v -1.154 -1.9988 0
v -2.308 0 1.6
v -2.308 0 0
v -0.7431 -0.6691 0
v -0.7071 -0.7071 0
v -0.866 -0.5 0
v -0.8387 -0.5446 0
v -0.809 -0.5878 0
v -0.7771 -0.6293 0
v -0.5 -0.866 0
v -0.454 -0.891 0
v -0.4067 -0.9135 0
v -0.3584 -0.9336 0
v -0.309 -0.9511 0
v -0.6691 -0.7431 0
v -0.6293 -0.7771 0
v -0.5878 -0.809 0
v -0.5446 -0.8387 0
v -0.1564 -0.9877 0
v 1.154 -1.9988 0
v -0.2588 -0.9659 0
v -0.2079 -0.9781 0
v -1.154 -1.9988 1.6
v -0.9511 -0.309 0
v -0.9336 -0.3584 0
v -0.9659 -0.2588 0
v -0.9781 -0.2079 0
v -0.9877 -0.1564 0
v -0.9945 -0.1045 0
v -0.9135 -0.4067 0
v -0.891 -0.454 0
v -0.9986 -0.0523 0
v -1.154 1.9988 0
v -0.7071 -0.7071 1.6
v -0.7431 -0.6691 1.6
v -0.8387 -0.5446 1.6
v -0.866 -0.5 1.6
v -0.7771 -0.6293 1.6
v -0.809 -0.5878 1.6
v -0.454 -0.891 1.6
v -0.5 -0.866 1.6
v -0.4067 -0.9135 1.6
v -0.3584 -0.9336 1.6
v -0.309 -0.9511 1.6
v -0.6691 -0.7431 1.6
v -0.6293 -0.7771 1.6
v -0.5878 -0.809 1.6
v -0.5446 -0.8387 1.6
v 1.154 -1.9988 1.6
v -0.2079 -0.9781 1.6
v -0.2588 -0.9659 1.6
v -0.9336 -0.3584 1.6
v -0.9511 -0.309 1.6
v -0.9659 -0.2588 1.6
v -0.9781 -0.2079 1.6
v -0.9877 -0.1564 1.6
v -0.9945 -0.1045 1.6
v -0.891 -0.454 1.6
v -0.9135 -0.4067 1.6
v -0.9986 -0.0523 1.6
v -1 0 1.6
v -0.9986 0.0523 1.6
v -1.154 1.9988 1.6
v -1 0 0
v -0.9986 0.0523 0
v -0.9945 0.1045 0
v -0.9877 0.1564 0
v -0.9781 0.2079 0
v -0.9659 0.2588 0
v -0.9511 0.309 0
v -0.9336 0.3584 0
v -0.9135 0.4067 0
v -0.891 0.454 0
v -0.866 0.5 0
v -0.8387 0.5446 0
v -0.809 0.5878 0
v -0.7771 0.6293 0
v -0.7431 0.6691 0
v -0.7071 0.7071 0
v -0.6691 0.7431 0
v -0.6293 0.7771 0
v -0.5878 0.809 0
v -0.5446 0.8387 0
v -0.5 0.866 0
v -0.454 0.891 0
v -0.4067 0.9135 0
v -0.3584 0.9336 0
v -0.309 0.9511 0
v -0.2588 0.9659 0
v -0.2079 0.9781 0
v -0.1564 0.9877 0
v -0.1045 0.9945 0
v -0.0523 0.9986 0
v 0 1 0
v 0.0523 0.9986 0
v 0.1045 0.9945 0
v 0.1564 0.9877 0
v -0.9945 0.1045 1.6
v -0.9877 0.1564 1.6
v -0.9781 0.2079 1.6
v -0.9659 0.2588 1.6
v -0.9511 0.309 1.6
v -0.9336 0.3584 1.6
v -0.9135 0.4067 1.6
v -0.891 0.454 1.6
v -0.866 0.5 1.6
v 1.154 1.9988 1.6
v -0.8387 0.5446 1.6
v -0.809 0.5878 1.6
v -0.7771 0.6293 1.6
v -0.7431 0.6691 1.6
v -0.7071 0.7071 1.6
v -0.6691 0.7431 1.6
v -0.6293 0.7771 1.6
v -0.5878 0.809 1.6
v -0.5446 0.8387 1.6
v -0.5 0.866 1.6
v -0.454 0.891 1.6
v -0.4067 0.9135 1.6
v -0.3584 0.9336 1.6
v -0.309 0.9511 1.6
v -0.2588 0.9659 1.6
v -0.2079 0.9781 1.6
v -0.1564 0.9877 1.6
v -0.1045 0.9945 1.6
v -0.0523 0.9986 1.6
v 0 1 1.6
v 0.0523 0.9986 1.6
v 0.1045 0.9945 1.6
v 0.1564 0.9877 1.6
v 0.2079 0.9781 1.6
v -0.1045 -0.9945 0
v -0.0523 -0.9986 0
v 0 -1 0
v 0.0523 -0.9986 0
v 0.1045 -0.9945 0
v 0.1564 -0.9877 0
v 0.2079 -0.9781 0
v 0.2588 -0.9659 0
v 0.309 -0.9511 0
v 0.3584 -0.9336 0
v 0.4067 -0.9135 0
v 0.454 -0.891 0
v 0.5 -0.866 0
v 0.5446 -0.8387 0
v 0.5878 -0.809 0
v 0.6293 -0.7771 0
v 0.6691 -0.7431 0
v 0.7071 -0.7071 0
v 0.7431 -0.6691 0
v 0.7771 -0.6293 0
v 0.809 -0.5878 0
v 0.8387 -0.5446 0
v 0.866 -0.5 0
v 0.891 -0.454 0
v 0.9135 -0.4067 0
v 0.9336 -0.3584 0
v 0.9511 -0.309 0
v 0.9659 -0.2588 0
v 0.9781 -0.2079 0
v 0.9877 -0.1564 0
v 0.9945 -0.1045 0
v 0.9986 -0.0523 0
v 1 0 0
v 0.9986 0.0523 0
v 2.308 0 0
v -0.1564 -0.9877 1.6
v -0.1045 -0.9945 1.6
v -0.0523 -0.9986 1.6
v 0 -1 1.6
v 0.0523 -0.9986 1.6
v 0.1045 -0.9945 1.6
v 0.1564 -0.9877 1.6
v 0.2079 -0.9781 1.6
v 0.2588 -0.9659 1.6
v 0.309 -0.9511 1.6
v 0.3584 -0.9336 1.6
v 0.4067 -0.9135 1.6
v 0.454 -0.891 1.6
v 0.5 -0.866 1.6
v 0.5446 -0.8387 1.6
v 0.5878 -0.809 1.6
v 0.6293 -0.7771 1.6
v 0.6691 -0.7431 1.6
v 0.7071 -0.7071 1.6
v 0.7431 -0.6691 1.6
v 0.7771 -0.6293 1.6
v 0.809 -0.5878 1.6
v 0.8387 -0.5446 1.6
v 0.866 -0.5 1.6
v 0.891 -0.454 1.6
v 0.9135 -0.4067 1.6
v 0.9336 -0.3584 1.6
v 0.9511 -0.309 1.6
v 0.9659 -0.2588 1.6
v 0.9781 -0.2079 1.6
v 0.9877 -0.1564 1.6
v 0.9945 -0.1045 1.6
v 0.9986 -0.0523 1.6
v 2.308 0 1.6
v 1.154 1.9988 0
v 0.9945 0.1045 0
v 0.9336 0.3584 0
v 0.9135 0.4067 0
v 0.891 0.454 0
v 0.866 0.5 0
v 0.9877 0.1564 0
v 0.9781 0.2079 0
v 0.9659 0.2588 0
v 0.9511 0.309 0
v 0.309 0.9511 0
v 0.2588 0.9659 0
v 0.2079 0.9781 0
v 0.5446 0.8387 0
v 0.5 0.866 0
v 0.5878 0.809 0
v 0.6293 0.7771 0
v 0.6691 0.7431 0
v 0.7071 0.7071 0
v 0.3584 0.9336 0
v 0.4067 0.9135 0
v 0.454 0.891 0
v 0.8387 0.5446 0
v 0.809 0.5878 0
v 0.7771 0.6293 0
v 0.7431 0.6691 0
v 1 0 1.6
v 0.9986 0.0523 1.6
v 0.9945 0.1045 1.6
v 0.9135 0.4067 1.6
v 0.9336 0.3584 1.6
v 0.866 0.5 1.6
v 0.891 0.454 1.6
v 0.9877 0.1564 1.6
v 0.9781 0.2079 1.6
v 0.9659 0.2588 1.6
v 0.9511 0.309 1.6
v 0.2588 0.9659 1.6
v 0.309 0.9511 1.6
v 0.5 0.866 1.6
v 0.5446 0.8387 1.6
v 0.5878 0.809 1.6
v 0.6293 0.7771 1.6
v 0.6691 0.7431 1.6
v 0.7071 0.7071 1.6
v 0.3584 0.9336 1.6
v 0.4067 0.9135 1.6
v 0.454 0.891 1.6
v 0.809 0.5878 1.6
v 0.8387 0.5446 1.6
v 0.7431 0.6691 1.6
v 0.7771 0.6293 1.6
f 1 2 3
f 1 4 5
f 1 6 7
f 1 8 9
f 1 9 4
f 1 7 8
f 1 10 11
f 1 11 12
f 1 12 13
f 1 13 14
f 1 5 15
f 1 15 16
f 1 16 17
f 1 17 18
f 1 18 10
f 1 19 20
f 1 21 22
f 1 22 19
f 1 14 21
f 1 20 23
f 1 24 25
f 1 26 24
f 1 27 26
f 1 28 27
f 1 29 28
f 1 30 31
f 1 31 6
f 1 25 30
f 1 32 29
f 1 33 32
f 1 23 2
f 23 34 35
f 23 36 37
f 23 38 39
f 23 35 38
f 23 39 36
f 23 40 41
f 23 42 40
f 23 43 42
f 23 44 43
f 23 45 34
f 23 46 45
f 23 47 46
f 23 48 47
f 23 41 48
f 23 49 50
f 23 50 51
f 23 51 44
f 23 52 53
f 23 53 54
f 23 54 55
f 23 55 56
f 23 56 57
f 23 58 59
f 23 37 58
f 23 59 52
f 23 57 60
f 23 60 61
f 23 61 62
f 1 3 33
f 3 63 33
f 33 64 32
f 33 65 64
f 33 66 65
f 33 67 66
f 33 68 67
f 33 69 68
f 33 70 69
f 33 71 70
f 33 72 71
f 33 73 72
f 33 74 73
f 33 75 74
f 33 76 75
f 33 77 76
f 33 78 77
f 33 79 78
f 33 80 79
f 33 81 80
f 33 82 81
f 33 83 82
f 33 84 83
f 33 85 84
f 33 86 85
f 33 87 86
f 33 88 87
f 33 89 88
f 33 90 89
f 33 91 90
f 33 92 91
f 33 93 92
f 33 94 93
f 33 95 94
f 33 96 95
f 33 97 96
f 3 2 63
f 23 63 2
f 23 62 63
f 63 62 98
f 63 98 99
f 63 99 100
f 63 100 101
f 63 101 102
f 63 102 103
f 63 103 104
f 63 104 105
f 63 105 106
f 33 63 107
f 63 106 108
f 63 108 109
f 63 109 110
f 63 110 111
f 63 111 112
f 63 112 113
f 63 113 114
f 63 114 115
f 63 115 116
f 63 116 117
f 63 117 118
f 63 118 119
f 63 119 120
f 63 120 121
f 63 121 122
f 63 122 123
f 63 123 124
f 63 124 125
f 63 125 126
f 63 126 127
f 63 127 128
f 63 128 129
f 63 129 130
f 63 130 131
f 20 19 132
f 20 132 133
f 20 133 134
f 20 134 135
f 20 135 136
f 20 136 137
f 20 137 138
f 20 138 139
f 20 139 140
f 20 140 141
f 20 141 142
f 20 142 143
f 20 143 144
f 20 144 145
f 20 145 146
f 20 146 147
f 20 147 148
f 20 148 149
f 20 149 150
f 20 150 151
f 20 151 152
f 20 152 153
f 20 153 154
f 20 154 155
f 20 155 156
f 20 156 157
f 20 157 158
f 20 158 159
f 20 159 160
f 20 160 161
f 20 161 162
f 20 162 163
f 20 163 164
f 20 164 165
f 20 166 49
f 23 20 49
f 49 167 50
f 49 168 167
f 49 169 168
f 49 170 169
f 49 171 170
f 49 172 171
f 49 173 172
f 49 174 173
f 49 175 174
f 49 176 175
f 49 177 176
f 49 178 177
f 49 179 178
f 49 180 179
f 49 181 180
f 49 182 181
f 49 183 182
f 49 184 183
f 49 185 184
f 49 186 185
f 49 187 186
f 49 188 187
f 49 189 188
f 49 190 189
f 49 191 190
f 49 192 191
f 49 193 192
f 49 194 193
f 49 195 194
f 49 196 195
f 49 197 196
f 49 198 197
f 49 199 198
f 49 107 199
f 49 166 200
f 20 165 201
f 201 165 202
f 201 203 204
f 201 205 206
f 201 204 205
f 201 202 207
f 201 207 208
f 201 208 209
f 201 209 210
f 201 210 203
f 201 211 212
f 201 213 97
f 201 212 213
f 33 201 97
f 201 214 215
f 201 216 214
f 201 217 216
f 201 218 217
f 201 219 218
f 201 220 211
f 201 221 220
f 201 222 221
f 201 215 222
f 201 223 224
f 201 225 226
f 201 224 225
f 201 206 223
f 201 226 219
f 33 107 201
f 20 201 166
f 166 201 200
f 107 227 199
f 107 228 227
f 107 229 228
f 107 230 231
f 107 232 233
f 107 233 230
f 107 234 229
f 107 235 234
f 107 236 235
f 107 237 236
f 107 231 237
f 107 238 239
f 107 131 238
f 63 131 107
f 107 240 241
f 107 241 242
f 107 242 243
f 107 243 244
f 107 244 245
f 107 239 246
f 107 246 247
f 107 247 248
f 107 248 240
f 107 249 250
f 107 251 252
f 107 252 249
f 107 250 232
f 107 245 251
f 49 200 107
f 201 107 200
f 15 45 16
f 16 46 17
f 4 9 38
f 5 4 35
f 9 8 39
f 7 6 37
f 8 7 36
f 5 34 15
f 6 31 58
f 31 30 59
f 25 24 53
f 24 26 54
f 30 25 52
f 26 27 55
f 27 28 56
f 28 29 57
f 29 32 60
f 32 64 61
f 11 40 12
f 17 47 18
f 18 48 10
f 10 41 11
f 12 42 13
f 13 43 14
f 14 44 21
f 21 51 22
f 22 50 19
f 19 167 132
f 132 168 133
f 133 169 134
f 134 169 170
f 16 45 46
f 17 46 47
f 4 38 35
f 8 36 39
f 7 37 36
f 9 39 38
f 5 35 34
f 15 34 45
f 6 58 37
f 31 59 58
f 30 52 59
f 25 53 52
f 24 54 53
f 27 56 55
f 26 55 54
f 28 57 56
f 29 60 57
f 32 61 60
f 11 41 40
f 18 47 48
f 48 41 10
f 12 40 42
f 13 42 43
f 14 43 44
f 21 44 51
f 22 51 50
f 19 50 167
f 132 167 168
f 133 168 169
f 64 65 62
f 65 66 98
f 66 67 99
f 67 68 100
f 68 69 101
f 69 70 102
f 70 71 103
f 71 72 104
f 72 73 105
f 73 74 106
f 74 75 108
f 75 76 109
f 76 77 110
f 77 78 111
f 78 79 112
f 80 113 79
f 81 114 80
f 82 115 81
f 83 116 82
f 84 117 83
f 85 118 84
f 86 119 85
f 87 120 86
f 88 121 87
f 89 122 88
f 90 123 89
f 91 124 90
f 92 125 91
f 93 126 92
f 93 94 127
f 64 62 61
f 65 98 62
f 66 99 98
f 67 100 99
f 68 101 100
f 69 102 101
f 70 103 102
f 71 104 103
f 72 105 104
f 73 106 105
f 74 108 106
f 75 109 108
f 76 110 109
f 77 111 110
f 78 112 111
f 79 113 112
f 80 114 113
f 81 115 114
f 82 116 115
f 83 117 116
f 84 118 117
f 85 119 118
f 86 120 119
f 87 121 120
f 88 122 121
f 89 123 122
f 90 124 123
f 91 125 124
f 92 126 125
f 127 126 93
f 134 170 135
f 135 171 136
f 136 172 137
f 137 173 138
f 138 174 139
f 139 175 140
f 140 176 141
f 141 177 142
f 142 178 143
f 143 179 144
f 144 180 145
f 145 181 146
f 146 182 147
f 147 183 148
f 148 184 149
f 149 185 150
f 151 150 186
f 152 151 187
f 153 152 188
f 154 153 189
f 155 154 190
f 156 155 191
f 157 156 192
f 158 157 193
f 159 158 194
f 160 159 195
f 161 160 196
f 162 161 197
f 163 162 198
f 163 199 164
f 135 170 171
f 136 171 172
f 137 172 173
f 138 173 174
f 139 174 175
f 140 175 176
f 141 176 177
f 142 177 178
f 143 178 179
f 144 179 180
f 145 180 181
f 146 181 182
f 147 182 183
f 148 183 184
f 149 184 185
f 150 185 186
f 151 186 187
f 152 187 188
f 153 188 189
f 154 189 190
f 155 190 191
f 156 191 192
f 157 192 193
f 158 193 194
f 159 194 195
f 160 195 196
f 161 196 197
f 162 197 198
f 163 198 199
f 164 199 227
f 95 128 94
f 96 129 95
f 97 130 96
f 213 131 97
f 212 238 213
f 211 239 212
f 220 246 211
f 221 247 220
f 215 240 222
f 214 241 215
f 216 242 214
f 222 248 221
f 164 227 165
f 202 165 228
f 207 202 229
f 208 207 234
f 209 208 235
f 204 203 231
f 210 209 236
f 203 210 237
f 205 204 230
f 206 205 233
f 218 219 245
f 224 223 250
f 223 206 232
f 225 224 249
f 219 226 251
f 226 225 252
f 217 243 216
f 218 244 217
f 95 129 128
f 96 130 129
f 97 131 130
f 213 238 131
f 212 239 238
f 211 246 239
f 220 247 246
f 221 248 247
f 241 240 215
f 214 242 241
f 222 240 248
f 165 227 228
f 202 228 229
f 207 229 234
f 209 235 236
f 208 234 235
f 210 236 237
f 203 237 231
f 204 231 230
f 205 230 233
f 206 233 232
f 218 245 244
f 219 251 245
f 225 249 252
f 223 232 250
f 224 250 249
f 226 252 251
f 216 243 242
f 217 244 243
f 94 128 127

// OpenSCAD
// file: C:/gh/oomlout_oobb_part_motor_gearbox_wave_drive_version_5/parts/oobb_part_motor_gearbox_wave_drive_version_5_12_to_1_reduction/compact_helpers.scad
// Reusable native geometry helpers.
function polar(r,a)=[r*cos(a),r*sin(a)];
function rotate_point(p,a)=[p[0]*cos(a)-p[1]*sin(a),p[0]*sin(a)+p[1]*cos(a)];
function profile_point(t)=let(
    s=sqrt(pow(pitch_radius,2)-pow(eccentricity*sin(cavity_count*t),2)),
    r=eccentricity*cos(cavity_count*t)+s,
    xi=atan2(eccentricity*cavity_count*sin(cavity_count*t),s),
    rr=roller_radius+profile_clearance)
    [r*cos(t)+rr*cos(t+xi),r*sin(t)+rr*sin(t+xi)];
function profile_points(upper=false)=[for(i=[0:cavity_count*profile_samples_per_cavity-1])
    rotate_point(profile_point(360*i/(cavity_count*profile_samples_per_cavity)),0)];
function roller_position(i,a,upper=false)=let(
    t=-a/roller_count+360*i/roller_count,
    rel=t-a-(upper?180:0),
    r=eccentricity*cos(rel)+sqrt(pow(pitch_radius,2)-pow(eccentricity*sin(rel),2))) polar(r,t);
module tube(ro,ri,h) { difference() { cylinder(r=ro,h=h); translate([0,0,-eps]) cylinder(r=ri,h=h+2*eps); } }
module screw_hole(size,h) { scale([1,1,h]) { if(size=="m2") oobb_hole_m2(); if(size=="m3") oobb_hole_m3(); if(size=="m6") oobb_hole_m6(); } }
module socket_recess(size,depth) {
    // OOBB socket head starts at the under-head plane and extends outward.
    scale([1,1,depth/(size=="m3"?3.2:2.2)]) {
        if(size=="m3") oobb_socket_m3(); else oobb_socket_m2();
    }
}
module at_mounts(points) { for(p=points) translate([p[0],p[1],0]) children(); }
module shaft_cut(h,fit=shaft_fit_clearance) {
    linear_extrude(h) intersection() {
        circle(r=input_shaft_diameter/2+fit);
        translate([-10,-10]) square([10+input_shaft_diameter/2-input_shaft_flat_depth+fit,20]);
    }
}
module rounded_rectangle_plate(size=[119,119,3],radius=1.5) {
    hull() for(x=[-1,1],y=[-1,1]) translate([x*(size[0]/2-radius),y*(size[1]/2-radius),0]) cylinder(r=radius,h=size[2]);
}
module grid_cuts(h) {
    // Actual OOBB grid centres: six units are centred on half-pitch offsets.
    for(i=[0:base_width-1],j=[0:base_height-1])
        let(x=(i-(base_width-1)/2)*oobb_grid_pitch,y=(j-(base_height-1)/2)*oobb_grid_pitch)
        if(sqrt(x*x+y*y)>housing_radius+3.5)
            translate([x,y,-eps]) screw_hole("m6",h+2*eps);
}
module wave_generator() {
    render(convexity=20) difference() {
        tube(wave_radius,12.6,wave_height);
        translate([0,0,wave_seat_z]) cylinder(r=13.5+bearing_seat_clearance,h=wave_height);
        translate([0,0,wave_height-wave_cap_depth]) cylinder(r=22.15,h=wave_cap_depth+eps);
        at_mounts(wave_mounts) {
            translate([0,0,-eps]) screw_hole("m3",wave_height+2*eps);
            translate([0,0,wave_nut_z]) scale([1,1,(wave_height-wave_cap_depth-wave_nut_z+eps)/2.7]) oobb_nut_m3();
        }
    }
}
module wave_cap() {
    render(convexity=20) difference() {
        tube(22,12.6,wave_cap_depth);
        at_mounts(wave_mounts) {
            translate([0,0,-eps]) screw_hole("m3",wave_cap_depth+2*eps);
            translate([0,0,wave_cap_depth-wave_head_recess]) socket_recess("m3",wave_head_recess+eps);
        }
    }
}
// file: C:/gh/oomlout_oobb_part_motor_gearbox_wave_drive_version_5/parts/oobb_part_motor_gearbox_wave_drive_version_5_12_to_1_reduction/oobb_hardware.scad
module oobb_rounded_rectangle_edges(size, radius, radius_top, radius_bottom) {
      rt=radius_top; rb=radius_bottom; depth=size[2]; n=16;
      lower=rb==0 ? [[radius,0]] :
        [for(i=[0:n]) let(a=-90+90*i/n) [radius-rb+rb*cos(a),rb+rb*sin(a)]];
      upper=rt==0 ? [[radius,depth]] :
        [for(i=[0:n]) let(a=90*i/n) [radius-rt+rt*cos(a),depth-rt+rt*sin(a)]];
      hull() for(x=[-size[0]/2+radius,size[0]/2-radius])
        for(y=[-size[1]/2+radius,size[1]/2-radius])
          translate([x,y,0]) rotate_extrude()
            polygon(concat([[0,0]],lower,upper,[[0,depth]]));
    }
// Generated from installed OOBB v5. All primitives use overhang=True.

module oobb_motor_plate_body() {


difference() {
	union() {
		translate(v = [0, 0, 0]) {
			rotate(a = [0, 0, 0]) {
				difference() {
					union() {
						oobb_rounded_rectangle_edges(radius = 1.5, radius_bottom = 1.5, radius_top = 1.5, size = [89.0, 89.0, 4.0]);
					}
					union();
				}
			}
		}
	}
	union();
}

}

module oobb_hole_m2() {


difference() {
	union() {
		cylinder(h = 1, r = 1.35);
	}
	union();
}

}

module oobb_hole_m3() {


difference() {
	union() {
		cylinder(h = 1, r = 1.8);
	}
	union();
}

}

module oobb_hole_m6() {


difference() {
	union() {
		cylinder(h = 1, r = 3.25);
	}
	union();
}

}

module oobb_nut_m2() {


difference() {
	union() {
		translate(v = [0, 0, 0]) {
			rotate(a = [0, 0, 0]) {
				difference() {
					union() {
						linear_extrude(height = 2.2) {
							polygon(points = [[2.4234, 0.0], [1.2117000000000002, 2.0987259635312085], [-1.2116999999999996, 2.0987259635312085], [-2.4234, 2.967809053053696e-16], [-1.211700000000001, -2.098725963531208], [1.2116999999999984, -2.0987259635312094]]);
						}
						translate(v = [-1.25, -2.75, -0.3]) {
							cube(size = [2.5, 5.5, 0.3]);
						}
						translate(v = [-1.25, -1.25, -0.6]) {
							cube(size = [2.5, 2.5, 0.3]);
						}
						translate(v = [-1.25, -2.75, 2.2]) {
							cube(size = [2.5, 5.5, 0.3]);
						}
						translate(v = [-1.25, -1.25, 2.5]) {
							cube(size = [2.5, 2.5, 0.3]);
						}
					}
					union();
				}
			}
		}
	}
	union();
}

}

module oobb_socket_m2() {


difference() {
	union() {
		translate(v = [0, 0, 0]) {
			rotate(a = [0, 0, 0]) {
				difference() {
					union() {
						cylinder(h = 2.2, r = 2.1);
						translate(v = [-1.25, -2.75, -0.3]) {
							cube(size = [2.5, 5.5, 0.3]);
						}
						translate(v = [-1.25, -1.25, -0.6]) {
							cube(size = [2.5, 2.5, 0.3]);
						}
					}
					union();
				}
			}
		}
	}
	union();
}

}

module oobb_nut_m3() {


difference() {
	union() {
		translate(v = [0, 0, 0]) {
			rotate(a = [0, 0, 0]) {
				difference() {
					union() {
						linear_extrude(height = 2.7) {
							polygon(points = [[3.4619999999999997, 0.0], [1.7310000000000003, 2.9981799479017264], [-1.7309999999999992, 2.9981799479017264], [-3.4619999999999997, 4.2397272186481365e-16], [-1.7310000000000014, -2.998179947901726], [1.7309999999999977, -2.9981799479017277]]);
						}
						translate(v = [-1.75, -3.25, -0.3]) {
							cube(size = [3.5, 6.5, 0.3]);
						}
						translate(v = [-1.75, -1.75, -0.6]) {
							cube(size = [3.5, 3.5, 0.3]);
						}
						translate(v = [-1.75, -3.25, 2.7]) {
							cube(size = [3.5, 6.5, 0.3]);
						}
						translate(v = [-1.75, -1.75, 3.0]) {
							cube(size = [3.5, 3.5, 0.3]);
						}
					}
					union();
				}
			}
		}
	}
	union();
}

}

module oobb_socket_m3() {


difference() {
	union() {
		translate(v = [0, 0, 0]) {
			rotate(a = [0, 0, 0]) {
				difference() {
					union() {
						cylinder(h = 3.2, r = 3.0);
						translate(v = [-1.75, -3.25, -0.3]) {
							cube(size = [3.5, 6.5, 0.3]);
						}
						translate(v = [-1.75, -1.75, -0.6]) {
							cube(size = [3.5, 3.5, 0.3]);
						}
					}
					union();
				}
			}
		}
	}
	union();
}

}

module oobb_nut_m6() {


difference() {
	union() {
		translate(v = [0, 0, 0]) {
			rotate(a = [0, 0, 0]) {
				difference() {
					union() {
						linear_extrude(height = 5.2) {
							polygon(points = [[5.914249999999999, 0.0], [2.957125, 5.1218907443321156], [-2.9571249999999982, 5.1218907443321156], [-5.914249999999999, 7.242867331857232e-16], [-2.9571250000000022, -5.121890744332115], [2.9571249999999956, -5.121890744332118]]);
						}
						translate(v = [-2.875, -5.0, -0.3]) {
							cube(size = [5.75, 10, 0.3]);
						}
						translate(v = [-2.875, -2.875, -0.6]) {
							cube(size = [5.75, 5.75, 0.3]);
						}
						translate(v = [-2.875, -5.0, 5.2]) {
							cube(size = [5.75, 10, 0.3]);
						}
						translate(v = [-2.875, -2.875, 5.5]) {
							cube(size = [5.75, 5.75, 0.3]);
						}
					}
					union();
				}
			}
		}
	}
	union();
}

}
// file: C:/gh/oomlout_oobb_part_motor_gearbox_wave_drive_version_5/parts/oobb_part_motor_gearbox_wave_drive_version_5_12_to_1_reduction/parameters.scad
// Generated by working_scad.py. Edit the Python recipe to persist changes.
style = "version_5";
reduction = 12;
bearing_output = "6810";
bearing_wave = "6704";
roller_diameter = 7.0;
roller_bore_diameter = 3.2;
roller_length = 12.0;
roller_material = "nylon";
roller_bank_count = 1;
motor_plate_depth = 4.0;
motor_body_depth = 40.0;
motor_shaft_length = 24.0;
motor_hole_pitch = 31.0;
motor_thread_depth = 6.0;
motor_pilot_diameter = 22.0;
motor_pilot_height = 2.0;
output_holder_wall = 7.0;
max_screw_length = 35.0;
eccentricity = 0.75;
wave_radius = 23.25;
profile_clearance = 0.15;
roller_slot_clearance = 0.3;
roller_end_clearance = 0.3;
cage_wall = 4.0;
cage_plate_depth = 3.0;
bearing_seat_clearance = 0.1;
journal_clearance = 0.05;
bearing_axial_clearance = 0.2;
output_plate_diameter = 65.0;
output_plate_depth = 6.0;
output_grid_pitch = 15.0;
output_face_clearance = 0.3;
output_socket_recess = 4.0;
output_screw_length = 16;
output_nut_depth = 5.2;
output_nut_height = 5.0;
motor_shaft_end_clearance = 0.5;
base_width = 6;
base_height = 6;
oobb_grid_pitch = 15.0;
oobb_size_allowance = 1.0;
base_edge_radius = 1.5;
housing_flange_corner_radius = 1.5;
housing_screw_pitch_radius = 35.5;
housing_screw_count = 6;
input_shaft_diameter = 5.0;
input_shaft_flat_depth = 0.5;
shaft_fit_clearance = 0.1;
cage_screw_count = 4;
profile_samples_per_cavity = 100;
circle_fragments = 120;
overhang = true;
run_scad = true;
run_solidcraft = false;
generate_stl = true;
generate_previews = true;
generate_renders = true;
validate_geometry = true;
package_outputs = true;
render_threads = 8;
variant = "default";
// main file
include <C:/gh/oomlout_oobb_part_motor_gearbox_wave_drive_version_5/parts/oobb_part_motor_gearbox_wave_drive_version_5_12_to_1_reduction/parameters.scad>
include <C:/gh/oomlout_oobb_part_motor_gearbox_wave_drive_version_5/parts/oobb_part_motor_gearbox_wave_drive_version_5_12_to_1_reduction/oobb_hardware.scad>
include <C:/gh/oomlout_oobb_part_motor_gearbox_wave_drive_version_5/parts/oobb_part_motor_gearbox_wave_drive_version_5_12_to_1_reduction/geometry.scad>
difference() { intersection() { 

difference() {
	union() {
		translate(v = [0, 0, 0]) {
			rotate(a = [0, 0, 0]) {
				difference() {
					union() {
						linear_extrude(height = 1.6) {
							polygon(points = [[2.308, 0.0], [1.1540000000000001, 1.998786631934484], [-1.1539999999999995, 1.9987866319344845], [-2.308, 2.826484812432091e-16], [-1.154000000000001, -1.9987866319344838], [1.1539999999999984, -1.9987866319344851]]);
						}
					}
					union();
				}
			}
		}
	}
	union();
}
 translate([-5,-5,0]) cube([10,10,1.6]); } translate([0,0,-0.01]) cylinder(r=1,h=1.62); }
